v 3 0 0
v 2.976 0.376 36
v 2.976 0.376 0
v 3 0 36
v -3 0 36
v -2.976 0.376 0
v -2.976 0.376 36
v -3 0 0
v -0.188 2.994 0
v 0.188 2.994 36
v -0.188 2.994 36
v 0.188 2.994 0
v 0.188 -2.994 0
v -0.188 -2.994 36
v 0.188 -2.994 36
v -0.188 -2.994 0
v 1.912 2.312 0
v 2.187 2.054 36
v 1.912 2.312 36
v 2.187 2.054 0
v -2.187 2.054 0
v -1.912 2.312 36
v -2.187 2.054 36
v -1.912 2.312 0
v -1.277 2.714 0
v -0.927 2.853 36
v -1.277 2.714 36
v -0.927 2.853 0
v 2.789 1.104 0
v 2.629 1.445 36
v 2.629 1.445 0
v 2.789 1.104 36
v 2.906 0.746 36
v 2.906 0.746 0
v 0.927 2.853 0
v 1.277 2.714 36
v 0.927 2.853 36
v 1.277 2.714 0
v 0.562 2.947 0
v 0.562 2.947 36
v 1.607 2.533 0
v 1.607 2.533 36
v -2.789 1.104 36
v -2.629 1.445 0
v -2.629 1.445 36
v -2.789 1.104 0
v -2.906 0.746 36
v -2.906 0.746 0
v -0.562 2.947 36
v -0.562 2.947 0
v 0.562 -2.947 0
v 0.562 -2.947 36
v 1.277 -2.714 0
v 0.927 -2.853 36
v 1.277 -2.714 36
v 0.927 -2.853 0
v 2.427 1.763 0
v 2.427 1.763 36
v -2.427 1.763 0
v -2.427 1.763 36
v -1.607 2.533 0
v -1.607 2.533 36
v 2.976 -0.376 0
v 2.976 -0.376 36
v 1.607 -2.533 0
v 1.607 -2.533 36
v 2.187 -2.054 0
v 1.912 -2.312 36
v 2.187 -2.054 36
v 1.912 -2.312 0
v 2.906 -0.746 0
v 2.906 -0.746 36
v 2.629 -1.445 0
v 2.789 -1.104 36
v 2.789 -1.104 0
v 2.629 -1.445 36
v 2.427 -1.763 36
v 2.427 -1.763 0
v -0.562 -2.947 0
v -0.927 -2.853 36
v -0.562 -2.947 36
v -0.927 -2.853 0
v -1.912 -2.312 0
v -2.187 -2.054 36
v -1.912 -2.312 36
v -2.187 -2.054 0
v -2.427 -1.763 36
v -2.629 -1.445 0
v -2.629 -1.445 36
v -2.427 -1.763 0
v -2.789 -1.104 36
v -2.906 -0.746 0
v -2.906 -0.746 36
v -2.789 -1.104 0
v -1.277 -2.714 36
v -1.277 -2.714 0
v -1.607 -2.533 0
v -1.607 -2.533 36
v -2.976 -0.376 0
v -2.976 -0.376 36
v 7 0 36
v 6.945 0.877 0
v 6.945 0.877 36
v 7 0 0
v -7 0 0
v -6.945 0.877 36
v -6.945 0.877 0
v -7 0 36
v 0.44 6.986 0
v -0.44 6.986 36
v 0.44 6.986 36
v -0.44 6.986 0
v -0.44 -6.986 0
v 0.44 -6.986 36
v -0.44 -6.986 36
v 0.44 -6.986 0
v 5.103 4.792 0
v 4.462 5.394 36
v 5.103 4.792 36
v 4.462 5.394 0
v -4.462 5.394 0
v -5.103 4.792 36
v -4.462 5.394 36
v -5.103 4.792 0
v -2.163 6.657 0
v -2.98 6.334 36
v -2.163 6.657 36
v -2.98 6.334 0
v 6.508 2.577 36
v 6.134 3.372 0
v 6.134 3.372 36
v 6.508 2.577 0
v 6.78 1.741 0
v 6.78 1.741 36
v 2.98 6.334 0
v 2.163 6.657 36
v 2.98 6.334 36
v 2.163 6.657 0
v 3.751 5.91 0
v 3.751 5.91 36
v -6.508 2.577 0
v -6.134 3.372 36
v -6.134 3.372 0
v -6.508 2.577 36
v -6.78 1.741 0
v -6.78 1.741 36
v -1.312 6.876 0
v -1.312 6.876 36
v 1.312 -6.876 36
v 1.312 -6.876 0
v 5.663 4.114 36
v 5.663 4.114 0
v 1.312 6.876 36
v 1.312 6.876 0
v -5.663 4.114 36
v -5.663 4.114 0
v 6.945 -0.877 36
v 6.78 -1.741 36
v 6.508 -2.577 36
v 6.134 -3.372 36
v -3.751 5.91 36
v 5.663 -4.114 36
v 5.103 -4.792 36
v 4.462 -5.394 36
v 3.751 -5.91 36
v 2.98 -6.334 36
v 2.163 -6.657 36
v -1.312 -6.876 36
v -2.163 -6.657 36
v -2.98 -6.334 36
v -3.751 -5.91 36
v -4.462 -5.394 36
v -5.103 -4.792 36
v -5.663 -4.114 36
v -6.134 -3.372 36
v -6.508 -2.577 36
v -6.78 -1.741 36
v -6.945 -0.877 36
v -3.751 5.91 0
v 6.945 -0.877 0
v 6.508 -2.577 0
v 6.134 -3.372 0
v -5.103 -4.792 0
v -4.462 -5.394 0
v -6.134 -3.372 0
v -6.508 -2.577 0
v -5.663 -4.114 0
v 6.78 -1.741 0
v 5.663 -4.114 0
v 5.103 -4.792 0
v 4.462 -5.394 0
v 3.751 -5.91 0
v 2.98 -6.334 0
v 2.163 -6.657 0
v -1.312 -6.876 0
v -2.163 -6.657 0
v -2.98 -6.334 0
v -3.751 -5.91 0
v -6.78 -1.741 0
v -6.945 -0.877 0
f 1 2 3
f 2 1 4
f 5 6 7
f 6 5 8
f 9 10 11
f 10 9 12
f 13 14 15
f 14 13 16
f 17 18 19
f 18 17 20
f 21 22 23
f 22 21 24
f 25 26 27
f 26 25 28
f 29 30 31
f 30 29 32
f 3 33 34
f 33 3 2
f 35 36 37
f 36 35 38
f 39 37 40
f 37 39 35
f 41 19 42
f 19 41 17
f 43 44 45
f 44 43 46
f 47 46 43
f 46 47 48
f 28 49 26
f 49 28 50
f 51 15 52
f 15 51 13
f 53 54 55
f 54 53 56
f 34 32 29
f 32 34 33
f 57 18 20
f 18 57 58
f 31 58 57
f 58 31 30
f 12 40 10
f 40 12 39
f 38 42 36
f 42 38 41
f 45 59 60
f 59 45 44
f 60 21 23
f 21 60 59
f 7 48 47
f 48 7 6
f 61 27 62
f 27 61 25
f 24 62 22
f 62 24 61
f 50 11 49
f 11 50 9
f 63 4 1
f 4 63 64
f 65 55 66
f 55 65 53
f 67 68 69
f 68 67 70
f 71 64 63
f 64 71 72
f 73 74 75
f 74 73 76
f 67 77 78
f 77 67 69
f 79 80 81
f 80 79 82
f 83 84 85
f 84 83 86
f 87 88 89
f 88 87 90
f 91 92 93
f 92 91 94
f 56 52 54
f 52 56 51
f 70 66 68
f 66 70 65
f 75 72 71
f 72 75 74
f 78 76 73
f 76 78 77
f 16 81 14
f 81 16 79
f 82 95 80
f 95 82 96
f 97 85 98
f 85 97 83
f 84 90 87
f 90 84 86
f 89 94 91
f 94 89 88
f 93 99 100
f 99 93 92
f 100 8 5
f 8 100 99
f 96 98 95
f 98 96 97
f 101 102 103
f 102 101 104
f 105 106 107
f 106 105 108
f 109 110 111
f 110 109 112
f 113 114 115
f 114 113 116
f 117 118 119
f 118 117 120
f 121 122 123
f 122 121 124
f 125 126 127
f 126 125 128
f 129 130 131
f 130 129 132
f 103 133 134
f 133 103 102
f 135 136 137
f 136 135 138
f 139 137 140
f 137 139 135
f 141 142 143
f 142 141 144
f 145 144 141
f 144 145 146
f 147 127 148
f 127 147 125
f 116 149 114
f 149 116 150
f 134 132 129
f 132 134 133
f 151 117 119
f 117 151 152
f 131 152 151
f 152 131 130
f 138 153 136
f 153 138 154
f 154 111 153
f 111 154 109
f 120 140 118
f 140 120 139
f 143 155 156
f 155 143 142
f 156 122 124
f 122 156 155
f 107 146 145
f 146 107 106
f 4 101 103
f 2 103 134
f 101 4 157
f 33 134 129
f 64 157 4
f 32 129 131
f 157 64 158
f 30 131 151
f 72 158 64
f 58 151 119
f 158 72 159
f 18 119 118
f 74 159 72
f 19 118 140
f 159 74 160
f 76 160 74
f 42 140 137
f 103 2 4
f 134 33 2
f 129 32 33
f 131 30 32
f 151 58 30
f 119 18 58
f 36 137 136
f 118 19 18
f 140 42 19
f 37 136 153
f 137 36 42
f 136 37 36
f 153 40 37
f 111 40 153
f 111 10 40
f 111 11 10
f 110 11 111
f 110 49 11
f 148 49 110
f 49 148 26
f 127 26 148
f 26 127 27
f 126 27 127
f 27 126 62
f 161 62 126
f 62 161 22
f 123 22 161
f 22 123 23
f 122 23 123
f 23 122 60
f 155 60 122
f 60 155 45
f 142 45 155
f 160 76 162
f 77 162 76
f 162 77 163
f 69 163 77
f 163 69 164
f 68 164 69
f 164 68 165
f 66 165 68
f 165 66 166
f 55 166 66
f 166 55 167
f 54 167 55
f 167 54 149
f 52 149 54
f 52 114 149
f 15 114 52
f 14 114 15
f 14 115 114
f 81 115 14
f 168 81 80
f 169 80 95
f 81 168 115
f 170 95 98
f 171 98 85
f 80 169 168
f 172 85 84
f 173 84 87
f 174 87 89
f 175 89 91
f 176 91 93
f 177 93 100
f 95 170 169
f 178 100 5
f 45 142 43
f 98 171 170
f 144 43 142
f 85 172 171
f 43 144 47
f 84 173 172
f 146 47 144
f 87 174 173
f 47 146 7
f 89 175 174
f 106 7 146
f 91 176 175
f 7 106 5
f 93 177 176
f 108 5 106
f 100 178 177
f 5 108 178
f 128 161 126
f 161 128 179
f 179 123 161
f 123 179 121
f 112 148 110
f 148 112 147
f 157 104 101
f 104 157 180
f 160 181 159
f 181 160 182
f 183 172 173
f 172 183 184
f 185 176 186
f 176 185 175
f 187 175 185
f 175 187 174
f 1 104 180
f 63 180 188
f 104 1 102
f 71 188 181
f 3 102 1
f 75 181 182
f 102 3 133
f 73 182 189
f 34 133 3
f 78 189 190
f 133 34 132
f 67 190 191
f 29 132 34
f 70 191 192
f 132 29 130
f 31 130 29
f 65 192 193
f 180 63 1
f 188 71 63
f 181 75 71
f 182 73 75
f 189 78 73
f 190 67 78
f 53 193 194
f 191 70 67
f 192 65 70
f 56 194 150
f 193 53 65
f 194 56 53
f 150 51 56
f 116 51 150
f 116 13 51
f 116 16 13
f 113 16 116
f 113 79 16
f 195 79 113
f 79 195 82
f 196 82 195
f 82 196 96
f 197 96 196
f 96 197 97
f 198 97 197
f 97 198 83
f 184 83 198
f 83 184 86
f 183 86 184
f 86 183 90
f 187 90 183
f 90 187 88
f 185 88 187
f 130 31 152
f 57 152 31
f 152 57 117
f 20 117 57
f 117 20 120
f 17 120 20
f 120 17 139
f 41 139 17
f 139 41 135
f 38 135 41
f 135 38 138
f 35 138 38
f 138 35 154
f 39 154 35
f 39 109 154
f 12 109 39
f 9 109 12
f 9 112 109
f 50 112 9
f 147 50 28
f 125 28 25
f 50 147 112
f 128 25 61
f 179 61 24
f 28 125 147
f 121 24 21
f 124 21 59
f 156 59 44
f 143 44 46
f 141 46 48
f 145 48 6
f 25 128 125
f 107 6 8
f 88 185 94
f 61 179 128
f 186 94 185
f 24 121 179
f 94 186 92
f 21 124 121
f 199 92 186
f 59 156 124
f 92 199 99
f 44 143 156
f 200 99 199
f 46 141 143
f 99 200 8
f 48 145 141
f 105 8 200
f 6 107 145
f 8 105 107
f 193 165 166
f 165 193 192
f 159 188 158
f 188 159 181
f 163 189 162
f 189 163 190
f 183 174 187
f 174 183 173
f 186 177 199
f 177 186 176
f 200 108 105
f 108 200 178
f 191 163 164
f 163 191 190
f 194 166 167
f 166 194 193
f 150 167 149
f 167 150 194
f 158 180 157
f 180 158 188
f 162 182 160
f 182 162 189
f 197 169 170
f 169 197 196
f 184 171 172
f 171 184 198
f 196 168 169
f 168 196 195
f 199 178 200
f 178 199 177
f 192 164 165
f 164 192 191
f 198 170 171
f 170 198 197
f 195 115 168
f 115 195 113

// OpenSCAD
$fn = 50;


difference() {
	union() {
		cylinder(h = 36, r = 7.0000000000);
	}
	union() {
		translate(v = [0.0000000000, 0.0000000000, -100.0000000000]) {
			cylinder(h = 200, r = 3.0000000000);
		}
		translate(v = [0.0000000000, 0.0000000000, -100.0000000000]) {
			cylinder(h = 200, r = 3.0000000000);
		}
		translate(v = [0.0000000000, 0.0000000000, -100.0000000000]) {
			cylinder(h = 200, r = 3.0000000000);
		}
		translate(v = [0.0000000000, 0.0000000000, -100.0000000000]) {
			cylinder(h = 200, r = 3.0000000000);
		}
	}
}
